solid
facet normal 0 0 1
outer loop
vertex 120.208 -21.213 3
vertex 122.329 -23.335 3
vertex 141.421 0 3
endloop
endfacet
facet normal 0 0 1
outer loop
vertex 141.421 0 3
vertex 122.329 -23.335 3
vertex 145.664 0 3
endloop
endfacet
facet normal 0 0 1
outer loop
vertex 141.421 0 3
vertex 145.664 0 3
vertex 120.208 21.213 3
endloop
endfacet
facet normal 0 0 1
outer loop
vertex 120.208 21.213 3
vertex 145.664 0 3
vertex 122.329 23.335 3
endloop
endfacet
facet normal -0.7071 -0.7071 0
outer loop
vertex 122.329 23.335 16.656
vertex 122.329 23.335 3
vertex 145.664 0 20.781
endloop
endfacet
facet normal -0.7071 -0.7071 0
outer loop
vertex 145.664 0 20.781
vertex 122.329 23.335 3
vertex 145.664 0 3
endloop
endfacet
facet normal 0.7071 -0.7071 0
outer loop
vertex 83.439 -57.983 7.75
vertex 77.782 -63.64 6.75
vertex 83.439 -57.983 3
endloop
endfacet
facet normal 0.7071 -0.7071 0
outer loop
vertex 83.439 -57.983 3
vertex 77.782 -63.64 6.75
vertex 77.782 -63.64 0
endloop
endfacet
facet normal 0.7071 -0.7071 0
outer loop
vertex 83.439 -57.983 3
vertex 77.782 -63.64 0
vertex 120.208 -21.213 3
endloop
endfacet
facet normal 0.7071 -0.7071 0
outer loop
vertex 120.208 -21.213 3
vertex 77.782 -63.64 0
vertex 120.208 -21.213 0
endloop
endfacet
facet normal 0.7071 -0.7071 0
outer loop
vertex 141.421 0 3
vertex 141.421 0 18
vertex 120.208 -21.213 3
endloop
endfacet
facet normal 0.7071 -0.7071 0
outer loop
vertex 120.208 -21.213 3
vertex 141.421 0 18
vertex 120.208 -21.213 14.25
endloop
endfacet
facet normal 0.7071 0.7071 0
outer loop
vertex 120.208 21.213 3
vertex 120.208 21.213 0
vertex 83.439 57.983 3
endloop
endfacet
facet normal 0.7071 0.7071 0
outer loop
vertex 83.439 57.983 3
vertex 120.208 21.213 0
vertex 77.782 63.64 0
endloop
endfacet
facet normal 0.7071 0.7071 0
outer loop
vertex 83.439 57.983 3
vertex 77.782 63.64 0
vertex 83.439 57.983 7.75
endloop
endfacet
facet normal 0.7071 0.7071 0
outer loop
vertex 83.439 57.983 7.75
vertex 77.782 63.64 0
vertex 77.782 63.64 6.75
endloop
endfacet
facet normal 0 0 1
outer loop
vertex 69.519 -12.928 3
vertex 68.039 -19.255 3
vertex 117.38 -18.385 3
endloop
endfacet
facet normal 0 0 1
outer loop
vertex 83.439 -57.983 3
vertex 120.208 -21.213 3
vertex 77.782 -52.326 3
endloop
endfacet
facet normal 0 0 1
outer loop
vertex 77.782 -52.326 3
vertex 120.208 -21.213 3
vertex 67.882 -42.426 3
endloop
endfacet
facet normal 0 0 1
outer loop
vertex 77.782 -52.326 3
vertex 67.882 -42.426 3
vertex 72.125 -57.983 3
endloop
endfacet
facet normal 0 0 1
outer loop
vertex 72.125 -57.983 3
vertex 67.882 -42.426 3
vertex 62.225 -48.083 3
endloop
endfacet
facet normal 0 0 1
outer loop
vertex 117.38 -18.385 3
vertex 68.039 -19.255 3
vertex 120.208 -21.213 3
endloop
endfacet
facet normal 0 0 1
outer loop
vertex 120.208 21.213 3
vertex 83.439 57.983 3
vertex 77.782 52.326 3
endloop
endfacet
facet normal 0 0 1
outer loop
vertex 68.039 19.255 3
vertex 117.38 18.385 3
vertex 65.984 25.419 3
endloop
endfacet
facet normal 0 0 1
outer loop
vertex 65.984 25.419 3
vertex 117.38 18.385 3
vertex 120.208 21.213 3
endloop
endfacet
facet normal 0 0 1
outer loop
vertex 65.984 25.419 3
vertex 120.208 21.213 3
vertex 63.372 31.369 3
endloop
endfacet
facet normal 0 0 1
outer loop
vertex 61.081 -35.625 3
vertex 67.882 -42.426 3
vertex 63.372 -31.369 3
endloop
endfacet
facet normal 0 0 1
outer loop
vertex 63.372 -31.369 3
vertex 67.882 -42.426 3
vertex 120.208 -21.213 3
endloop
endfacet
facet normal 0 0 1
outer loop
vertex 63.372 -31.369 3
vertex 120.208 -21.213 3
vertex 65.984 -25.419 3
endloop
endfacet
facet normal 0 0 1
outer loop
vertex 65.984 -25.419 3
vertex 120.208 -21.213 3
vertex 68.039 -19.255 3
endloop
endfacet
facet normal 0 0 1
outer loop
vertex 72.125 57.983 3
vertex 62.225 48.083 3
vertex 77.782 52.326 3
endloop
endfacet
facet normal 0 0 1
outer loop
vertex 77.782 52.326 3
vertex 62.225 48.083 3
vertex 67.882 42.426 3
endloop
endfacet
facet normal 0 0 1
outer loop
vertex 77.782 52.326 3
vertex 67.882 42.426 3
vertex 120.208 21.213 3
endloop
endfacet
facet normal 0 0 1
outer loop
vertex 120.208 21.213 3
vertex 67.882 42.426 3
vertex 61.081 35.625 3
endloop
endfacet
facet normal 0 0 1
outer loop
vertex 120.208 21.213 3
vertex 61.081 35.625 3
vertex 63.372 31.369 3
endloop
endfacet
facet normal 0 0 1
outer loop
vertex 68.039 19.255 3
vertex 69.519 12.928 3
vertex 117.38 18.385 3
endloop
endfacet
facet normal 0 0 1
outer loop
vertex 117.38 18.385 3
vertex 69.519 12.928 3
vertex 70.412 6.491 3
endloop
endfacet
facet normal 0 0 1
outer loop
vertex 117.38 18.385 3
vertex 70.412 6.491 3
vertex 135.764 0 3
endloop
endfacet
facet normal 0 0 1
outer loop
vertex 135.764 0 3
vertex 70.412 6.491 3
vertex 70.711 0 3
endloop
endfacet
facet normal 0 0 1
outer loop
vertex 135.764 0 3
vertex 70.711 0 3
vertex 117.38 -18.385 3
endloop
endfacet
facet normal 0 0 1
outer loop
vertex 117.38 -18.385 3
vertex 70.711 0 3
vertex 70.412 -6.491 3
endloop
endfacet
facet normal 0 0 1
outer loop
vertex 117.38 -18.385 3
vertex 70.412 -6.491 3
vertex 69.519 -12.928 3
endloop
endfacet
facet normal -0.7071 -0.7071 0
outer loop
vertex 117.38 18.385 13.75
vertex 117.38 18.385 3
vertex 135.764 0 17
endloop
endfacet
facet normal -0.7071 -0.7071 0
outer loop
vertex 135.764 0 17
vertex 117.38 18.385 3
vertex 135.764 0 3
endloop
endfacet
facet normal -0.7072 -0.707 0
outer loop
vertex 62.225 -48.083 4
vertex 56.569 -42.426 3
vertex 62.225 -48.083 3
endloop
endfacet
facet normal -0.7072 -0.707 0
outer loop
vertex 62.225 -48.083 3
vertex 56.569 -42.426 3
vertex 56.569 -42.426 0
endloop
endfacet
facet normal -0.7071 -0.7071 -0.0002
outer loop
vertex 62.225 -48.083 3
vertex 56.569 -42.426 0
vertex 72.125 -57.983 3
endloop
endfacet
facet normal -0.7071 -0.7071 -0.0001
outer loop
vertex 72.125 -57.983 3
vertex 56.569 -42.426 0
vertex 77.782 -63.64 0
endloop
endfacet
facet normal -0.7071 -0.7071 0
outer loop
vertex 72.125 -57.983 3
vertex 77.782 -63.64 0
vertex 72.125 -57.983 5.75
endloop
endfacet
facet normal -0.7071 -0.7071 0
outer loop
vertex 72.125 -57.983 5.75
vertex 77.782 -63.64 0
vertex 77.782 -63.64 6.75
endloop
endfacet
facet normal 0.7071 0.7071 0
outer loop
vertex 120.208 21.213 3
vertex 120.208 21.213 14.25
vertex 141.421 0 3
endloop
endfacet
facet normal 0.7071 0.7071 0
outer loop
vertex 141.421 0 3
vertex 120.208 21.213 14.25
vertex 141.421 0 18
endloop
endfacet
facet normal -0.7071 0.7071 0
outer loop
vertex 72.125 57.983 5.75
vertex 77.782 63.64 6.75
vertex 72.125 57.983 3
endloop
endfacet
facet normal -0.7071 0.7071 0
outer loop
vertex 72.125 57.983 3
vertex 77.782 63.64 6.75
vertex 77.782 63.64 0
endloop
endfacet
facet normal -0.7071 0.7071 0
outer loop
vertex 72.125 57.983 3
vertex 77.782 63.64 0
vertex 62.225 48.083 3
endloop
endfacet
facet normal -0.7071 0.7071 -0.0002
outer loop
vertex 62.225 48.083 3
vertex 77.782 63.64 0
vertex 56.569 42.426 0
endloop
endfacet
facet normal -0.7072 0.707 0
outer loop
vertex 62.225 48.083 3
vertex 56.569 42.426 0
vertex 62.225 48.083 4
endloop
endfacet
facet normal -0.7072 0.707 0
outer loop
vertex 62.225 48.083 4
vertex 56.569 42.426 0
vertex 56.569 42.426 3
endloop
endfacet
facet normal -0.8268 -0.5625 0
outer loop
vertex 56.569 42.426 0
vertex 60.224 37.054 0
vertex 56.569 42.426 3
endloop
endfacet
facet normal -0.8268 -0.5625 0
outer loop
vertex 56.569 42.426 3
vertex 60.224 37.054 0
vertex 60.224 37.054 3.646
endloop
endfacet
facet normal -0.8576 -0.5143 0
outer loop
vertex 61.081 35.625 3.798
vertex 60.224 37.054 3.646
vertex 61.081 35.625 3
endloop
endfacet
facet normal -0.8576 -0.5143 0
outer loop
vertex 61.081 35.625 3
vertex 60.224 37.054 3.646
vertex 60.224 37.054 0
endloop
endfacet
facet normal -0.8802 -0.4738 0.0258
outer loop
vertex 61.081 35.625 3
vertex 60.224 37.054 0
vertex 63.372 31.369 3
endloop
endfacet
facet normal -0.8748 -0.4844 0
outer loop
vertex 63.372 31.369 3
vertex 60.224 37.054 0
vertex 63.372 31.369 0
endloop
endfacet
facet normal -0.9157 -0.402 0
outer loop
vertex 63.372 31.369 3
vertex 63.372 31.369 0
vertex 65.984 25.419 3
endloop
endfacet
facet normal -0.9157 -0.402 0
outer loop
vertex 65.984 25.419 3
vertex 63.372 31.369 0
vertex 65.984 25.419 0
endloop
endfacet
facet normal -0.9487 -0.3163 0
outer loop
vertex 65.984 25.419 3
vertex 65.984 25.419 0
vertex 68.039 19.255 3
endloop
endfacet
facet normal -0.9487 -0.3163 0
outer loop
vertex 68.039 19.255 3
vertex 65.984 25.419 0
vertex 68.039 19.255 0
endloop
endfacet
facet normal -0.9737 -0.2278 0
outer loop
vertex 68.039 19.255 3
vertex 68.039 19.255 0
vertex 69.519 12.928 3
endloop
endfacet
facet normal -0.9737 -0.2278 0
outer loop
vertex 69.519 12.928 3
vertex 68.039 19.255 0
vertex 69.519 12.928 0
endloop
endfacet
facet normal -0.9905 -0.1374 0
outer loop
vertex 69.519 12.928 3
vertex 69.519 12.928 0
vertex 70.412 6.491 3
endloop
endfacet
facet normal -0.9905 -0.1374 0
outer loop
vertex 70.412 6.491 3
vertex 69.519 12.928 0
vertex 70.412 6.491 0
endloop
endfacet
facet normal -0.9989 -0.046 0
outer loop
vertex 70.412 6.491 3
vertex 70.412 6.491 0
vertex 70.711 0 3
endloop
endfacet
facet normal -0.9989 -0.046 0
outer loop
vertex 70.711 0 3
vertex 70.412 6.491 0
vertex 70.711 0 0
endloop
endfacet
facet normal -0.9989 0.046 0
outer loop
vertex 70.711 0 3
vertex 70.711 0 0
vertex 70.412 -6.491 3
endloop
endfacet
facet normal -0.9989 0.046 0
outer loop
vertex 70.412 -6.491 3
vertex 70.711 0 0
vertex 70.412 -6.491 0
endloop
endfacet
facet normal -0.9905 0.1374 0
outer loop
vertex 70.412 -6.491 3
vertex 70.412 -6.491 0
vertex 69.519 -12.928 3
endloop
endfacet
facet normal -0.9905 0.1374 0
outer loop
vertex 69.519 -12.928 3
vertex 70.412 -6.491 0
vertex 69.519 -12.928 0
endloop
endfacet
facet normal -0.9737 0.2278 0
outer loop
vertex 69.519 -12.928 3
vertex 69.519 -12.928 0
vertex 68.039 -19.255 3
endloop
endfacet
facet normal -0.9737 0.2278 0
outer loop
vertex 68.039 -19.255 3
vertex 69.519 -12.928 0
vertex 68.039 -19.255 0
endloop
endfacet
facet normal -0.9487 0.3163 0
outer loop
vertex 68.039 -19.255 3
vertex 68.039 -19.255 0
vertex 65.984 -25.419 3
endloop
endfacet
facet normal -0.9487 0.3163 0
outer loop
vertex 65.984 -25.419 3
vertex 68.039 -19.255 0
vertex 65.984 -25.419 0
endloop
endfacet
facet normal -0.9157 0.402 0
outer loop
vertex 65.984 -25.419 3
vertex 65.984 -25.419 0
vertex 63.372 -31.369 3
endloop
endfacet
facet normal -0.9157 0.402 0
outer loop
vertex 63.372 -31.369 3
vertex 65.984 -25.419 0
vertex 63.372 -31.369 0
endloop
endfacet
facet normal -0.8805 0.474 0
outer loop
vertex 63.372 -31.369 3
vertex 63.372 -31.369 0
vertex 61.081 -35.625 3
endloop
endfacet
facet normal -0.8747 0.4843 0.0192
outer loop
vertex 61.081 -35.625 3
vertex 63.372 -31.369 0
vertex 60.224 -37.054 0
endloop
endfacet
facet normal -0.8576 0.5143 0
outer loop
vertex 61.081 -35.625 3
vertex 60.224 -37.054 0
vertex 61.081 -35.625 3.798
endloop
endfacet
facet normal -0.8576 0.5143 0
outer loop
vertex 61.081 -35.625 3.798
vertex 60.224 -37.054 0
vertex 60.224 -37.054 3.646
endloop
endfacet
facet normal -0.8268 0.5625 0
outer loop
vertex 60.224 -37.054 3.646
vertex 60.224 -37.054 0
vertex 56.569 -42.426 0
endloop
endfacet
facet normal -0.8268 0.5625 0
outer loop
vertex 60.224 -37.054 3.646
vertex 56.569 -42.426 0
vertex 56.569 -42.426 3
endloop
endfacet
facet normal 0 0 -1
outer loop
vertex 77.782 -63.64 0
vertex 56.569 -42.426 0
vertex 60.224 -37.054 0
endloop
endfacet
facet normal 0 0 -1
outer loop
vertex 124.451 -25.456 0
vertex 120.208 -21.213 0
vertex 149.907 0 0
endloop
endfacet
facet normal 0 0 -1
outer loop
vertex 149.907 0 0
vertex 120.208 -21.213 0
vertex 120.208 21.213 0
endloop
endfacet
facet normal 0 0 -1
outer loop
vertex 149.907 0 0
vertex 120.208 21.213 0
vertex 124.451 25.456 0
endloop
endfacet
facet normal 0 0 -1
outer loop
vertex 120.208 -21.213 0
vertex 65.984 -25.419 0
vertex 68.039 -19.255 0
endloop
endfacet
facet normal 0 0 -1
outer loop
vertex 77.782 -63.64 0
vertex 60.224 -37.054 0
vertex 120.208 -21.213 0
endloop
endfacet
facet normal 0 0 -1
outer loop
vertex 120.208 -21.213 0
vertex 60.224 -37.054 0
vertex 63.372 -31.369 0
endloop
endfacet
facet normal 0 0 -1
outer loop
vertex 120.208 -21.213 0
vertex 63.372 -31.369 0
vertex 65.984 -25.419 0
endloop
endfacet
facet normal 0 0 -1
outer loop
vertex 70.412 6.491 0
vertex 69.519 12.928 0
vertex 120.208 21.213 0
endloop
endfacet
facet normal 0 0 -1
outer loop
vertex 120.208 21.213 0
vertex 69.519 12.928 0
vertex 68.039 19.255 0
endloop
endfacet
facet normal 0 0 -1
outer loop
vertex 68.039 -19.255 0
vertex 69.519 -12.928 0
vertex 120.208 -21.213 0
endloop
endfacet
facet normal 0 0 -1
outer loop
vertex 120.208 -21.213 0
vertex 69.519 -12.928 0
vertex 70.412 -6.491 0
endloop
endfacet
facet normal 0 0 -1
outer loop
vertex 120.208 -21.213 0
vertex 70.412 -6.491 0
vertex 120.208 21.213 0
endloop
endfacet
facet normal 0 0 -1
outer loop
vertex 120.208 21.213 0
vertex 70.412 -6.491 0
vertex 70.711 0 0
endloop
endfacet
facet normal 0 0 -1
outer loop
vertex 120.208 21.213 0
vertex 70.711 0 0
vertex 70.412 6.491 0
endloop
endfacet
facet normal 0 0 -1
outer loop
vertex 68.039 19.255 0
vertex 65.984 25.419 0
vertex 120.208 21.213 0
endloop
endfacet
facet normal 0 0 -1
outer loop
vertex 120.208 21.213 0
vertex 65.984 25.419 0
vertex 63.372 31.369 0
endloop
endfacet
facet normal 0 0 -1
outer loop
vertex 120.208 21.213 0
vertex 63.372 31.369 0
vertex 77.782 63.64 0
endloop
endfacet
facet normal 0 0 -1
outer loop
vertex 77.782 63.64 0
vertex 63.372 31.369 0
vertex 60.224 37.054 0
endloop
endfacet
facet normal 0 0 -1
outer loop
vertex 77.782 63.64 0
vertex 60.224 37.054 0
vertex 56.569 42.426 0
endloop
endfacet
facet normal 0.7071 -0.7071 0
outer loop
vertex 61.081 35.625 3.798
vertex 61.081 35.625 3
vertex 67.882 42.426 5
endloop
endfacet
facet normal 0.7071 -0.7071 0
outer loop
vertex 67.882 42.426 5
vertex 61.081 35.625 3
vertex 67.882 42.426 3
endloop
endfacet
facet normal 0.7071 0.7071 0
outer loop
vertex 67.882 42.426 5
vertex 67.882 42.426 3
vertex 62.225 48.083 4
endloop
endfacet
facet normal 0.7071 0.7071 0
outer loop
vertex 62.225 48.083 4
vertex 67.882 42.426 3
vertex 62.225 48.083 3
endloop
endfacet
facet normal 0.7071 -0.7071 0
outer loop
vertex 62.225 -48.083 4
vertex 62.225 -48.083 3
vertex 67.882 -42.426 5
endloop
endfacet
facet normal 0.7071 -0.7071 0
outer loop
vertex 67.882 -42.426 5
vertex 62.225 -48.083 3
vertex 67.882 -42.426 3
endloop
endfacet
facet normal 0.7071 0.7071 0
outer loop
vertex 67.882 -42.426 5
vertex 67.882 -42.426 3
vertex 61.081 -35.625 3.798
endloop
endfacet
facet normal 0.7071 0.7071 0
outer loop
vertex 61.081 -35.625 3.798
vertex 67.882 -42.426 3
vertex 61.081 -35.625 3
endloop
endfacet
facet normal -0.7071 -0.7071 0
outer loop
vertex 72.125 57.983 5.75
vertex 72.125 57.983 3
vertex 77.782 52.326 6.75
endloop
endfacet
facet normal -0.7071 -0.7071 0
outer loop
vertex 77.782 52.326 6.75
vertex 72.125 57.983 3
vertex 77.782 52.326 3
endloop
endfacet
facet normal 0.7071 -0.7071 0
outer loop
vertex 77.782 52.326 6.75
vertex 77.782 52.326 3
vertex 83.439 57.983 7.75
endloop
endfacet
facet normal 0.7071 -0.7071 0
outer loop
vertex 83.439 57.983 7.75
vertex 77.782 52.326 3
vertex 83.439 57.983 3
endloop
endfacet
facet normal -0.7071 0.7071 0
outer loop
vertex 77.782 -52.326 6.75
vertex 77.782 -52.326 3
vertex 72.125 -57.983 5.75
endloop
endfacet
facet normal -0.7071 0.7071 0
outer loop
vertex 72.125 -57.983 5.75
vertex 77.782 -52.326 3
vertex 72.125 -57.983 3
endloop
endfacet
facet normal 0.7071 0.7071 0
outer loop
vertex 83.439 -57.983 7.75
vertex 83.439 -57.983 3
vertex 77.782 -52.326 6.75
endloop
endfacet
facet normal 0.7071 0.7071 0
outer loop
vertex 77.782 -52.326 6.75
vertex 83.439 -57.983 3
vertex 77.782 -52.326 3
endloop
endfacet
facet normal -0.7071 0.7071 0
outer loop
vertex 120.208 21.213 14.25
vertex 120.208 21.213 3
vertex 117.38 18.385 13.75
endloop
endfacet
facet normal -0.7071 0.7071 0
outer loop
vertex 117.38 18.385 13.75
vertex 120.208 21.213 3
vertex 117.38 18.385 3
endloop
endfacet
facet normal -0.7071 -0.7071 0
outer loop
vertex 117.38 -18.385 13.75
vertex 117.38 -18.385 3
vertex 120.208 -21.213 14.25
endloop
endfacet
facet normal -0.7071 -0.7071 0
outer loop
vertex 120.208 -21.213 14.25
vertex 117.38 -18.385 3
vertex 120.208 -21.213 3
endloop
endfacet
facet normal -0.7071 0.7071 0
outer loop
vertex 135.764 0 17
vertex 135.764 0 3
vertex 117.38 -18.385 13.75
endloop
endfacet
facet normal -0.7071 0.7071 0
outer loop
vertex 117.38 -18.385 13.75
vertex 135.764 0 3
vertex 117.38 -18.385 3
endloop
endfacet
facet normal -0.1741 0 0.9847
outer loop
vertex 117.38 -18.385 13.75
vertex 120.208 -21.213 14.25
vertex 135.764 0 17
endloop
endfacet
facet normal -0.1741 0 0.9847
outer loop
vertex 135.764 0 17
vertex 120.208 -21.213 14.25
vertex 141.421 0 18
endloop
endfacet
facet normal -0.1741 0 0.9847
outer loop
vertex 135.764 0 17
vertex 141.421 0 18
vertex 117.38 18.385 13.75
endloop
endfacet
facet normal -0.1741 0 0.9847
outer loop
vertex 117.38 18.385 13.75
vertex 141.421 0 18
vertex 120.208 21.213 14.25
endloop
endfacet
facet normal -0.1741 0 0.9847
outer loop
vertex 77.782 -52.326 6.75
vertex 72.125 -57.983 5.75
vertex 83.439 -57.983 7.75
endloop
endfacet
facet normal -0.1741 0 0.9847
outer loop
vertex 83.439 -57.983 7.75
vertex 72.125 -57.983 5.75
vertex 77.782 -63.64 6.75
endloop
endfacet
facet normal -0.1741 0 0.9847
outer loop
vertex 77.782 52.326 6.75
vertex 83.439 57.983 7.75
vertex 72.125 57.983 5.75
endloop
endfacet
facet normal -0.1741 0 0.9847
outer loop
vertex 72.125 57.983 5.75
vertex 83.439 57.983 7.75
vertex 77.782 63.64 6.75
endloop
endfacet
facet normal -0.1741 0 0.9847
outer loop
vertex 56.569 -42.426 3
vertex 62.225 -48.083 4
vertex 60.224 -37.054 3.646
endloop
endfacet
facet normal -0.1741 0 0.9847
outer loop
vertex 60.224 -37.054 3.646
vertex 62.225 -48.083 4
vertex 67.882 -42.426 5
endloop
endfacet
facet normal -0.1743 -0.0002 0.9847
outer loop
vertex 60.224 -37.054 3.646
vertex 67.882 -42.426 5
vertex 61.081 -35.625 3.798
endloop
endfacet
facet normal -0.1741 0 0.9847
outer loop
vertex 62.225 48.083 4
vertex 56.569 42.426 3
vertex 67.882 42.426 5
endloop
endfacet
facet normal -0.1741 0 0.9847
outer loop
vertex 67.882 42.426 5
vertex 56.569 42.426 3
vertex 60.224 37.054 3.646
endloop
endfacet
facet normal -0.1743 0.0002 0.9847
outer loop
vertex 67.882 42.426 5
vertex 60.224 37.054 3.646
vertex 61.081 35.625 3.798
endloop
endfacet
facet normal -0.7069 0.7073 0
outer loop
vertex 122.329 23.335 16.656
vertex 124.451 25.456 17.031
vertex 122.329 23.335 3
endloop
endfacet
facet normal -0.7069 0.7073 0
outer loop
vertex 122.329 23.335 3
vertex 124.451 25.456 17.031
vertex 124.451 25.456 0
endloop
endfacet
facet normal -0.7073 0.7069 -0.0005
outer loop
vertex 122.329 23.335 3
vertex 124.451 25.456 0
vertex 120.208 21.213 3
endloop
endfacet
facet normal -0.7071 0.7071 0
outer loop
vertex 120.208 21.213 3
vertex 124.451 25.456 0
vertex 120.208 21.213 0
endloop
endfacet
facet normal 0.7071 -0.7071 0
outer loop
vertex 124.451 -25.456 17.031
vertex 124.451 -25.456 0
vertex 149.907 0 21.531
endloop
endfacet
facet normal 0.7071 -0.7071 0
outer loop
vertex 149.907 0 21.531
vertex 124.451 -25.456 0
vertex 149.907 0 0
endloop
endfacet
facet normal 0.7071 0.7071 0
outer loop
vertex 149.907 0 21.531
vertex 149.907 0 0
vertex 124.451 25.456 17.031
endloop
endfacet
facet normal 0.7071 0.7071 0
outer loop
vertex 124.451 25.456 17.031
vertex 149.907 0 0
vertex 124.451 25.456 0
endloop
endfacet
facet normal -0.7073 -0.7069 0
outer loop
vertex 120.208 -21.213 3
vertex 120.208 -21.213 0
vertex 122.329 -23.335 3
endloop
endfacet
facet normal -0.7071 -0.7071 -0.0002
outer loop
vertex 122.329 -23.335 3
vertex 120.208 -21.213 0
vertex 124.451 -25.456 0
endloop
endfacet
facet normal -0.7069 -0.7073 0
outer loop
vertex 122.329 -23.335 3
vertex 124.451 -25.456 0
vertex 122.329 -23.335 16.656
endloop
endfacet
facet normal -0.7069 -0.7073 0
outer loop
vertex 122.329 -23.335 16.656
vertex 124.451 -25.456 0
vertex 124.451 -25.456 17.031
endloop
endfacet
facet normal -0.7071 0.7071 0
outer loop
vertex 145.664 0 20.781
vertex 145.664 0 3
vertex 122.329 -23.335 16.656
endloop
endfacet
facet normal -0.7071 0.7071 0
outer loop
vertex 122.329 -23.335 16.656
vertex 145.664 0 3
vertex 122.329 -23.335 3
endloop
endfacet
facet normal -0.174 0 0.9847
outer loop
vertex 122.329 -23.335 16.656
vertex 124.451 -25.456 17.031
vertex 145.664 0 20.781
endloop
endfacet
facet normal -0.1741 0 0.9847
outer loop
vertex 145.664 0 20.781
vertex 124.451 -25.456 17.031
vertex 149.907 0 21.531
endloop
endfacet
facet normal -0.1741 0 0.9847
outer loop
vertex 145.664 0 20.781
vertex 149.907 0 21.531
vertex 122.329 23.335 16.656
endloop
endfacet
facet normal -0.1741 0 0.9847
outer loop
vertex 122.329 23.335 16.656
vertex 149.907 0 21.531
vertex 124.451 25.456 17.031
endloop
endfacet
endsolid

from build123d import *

# Parameters (mm, degrees)
CLOSED_BOTTOM_PLATE_3MM_DEPTH   = 3
FOOT1_CURVED_R70P71_DEPTH       = 20
FOOT2_CURVED_R70P71_DEPTH       = 20
PAD4_C_BLANK_DEPTH              = 20
PAD5_A_BLANK_DEPTH              = 20
SLOT_BACKING_INSIDE_NORTH_DEPTH = 22
SLOT_BACKING_INSIDE_EAST_DEPTH  = 22
TOP_OUTER_PLANE_DEPTH           = 157.633329786
TOP_OUTER_PLANE_DEPTH_BACK      = 157.633329786
SLOT_BASE_NORTH_DEPTH           = 3
SLOT_BASE_EAST_DEPTH            = 3
SLOT_OUTER_NORTH_DEPTH          = 22
SLOT_OUTER_EAST_DEPTH           = 22
CUT_EXTRUDE_2_DEPTH             = 165.335023656
CUT_EXTRUDE_2_DEPTH_BACK        = 165.335023656


with BuildPart() as part:
    # Closed_bottom_plate_3mm_sketch → Closed_bottom_plate_3mm (new body)
    with BuildSketch(Plane.XY):
        with BuildLine():
            Line((77.781745931, -63.639610307), (141.421356237, 0))
            Line((141.421356237, 0), (77.781745931, 63.639610307))
            Line((77.781745931, 63.639610307), (56.568542495, 42.426406871))
            ThreePointArc((56.568542495, 42.426406871), (70.710678119, 0), (56.568542495, -42.426406871))
            Line((56.568542495, -42.426406871), (77.781745931, -63.639610307))
        make_face()
    extrude(amount=CLOSED_BOTTOM_PLATE_3MM_DEPTH)

    # Foot1_curved_R70p71_sketch → Foot1_curved_R70p71 (add)
    with BuildSketch(Plane.XY):
        with BuildLine():
            Line((62.225396744, 48.083261121), (67.882250994, 42.426406871))
            Line((67.882250994, 42.426406871), (61.080791676, 35.624947554))
            ThreePointArc((61.080791676, 35.624947554), (58.922885367, 39.090837546), (56.568542495, 42.426406871))
            Line((56.568542495, 42.426406871), (62.225396744, 48.083261121))
        make_face()
    extrude(amount=FOOT1_CURVED_R70P71_DEPTH)

    # Foot2_curved_R70p71_sketch → Foot2_curved_R70p71 (add)
    with BuildSketch(Plane.XY):
        with BuildLine():
            Line((62.225396744, -48.083261121), (67.882250994, -42.426406871))
            Line((67.882250994, -42.426406871), (61.080791676, -35.624947554))
            ThreePointArc((61.080791676, -35.624947554), (58.922885367, -39.090837546), (56.568542495, -42.426406871))
            Line((56.568542495, -42.426406871), (62.225396744, -48.083261121))
        make_face()
    extrude(amount=FOOT2_CURVED_R70P71_DEPTH)

    # Pad4_C_blank_sketch → Pad4_C_blank (add)
    with BuildSketch(Plane.XY):
        Polygon((72.124891681, 57.982756057), (77.781745931, 52.325901808), (83.43860018, 57.982756057), (77.781745931, 63.639610307), align=None)
    extrude(amount=PAD4_C_BLANK_DEPTH)

    # Pad5_A_blank_sketch → Pad5_A_blank (add)
    with BuildSketch(Plane.XY):
        Polygon((72.124891681, -57.982756057), (77.781745931, -63.639610307), (83.43860018, -57.982756057), (77.781745931, -52.325901808), align=None)
    extrude(amount=PAD5_A_BLANK_DEPTH)

    # Slot_backing_inside_north_sketch → Slot_backing_inside_north (add)
    with BuildSketch(Plane.XY):
        Polygon((117.379725677, 18.384776311), (138.592929113, -2.828427125), (141.421356237, 0), (120.208152802, 21.213203436), align=None)
    extrude(amount=SLOT_BACKING_INSIDE_NORTH_DEPTH)

    # Slot_backing_inside_east_sketch → Slot_backing_inside_east (add)
    with BuildSketch(Plane.XY):
        Polygon((117.379725677, -18.384776311), (120.208152802, -21.213203436), (141.421356237, 0), (138.592929113, 2.828427125), align=None)
    extrude(amount=SLOT_BACKING_INSIDE_EAST_DEPTH)

    # Top_outer_plane_sketch → Top_outer_plane (cut, two sides: drawn at the far end of the back side and taken through both)
    with BuildSketch(Plane(origin=(0, 0, 0), x_dir=(1, 0, 0), z_dir=(0, 1, 0)).offset(-TOP_OUTER_PLANE_DEPTH_BACK)):
        Polygon((-100, 24.67766953), (250, -37.194173824), (250, -100), (-100, -100), align=None)
    extrude(amount=TOP_OUTER_PLANE_DEPTH + TOP_OUTER_PLANE_DEPTH_BACK, mode=Mode.SUBTRACT)

    # Slot_base_north_sketch → Slot_base_north (add)
    with BuildSketch(Plane.XY):
        Polygon((117.379725677, 18.384776311), (142.8355698, -7.071067812), (149.906637612, 0), (124.450793489, 25.455844123), align=None)
    extrude(amount=SLOT_BASE_NORTH_DEPTH)

    # Slot_base_east_sketch → Slot_base_east (add)
    with BuildSketch(Plane.XY):
        Polygon((117.379725677, -18.384776311), (124.450793489, -25.455844123), (149.906637612, 0), (142.8355698, 7.071067812), align=None)
    extrude(amount=SLOT_BASE_EAST_DEPTH)

    # Slot_outer_north_sketch → Slot_outer_north (add)
    with BuildSketch(Plane.XY):
        Polygon((122.329473145, 23.334523779), (147.785317268, -2.121320344), (149.906637612, 0), (124.450793489, 25.455844123), align=None)
    extrude(amount=SLOT_OUTER_NORTH_DEPTH)

    # Slot_outer_east_sketch → Slot_outer_east (add)
    with BuildSketch(Plane.XY):
        Polygon((122.329473145, -23.334523779), (124.450793489, -25.455844123), (149.906637612, 0), (147.785317268, 2.121320344), align=None)
    extrude(amount=SLOT_OUTER_EAST_DEPTH)

    # 草图13 → 切除-拉伸2 (cut, two sides: drawn at the far end of the back side and taken through both)
    with BuildSketch(Plane(origin=(0, 0, 0), x_dir=(1, 0, 0), z_dir=(0, 1, 0)).offset(-CUT_EXTRUDE_2_DEPTH_BACK)):
        Polygon((-100, 22.646659929), (250, -39.225183425), (250, -100), (-100, -100), align=None)
    extrude(amount=CUT_EXTRUDE_2_DEPTH + CUT_EXTRUDE_2_DEPTH_BACK, mode=Mode.SUBTRACT)


solid = part.part
